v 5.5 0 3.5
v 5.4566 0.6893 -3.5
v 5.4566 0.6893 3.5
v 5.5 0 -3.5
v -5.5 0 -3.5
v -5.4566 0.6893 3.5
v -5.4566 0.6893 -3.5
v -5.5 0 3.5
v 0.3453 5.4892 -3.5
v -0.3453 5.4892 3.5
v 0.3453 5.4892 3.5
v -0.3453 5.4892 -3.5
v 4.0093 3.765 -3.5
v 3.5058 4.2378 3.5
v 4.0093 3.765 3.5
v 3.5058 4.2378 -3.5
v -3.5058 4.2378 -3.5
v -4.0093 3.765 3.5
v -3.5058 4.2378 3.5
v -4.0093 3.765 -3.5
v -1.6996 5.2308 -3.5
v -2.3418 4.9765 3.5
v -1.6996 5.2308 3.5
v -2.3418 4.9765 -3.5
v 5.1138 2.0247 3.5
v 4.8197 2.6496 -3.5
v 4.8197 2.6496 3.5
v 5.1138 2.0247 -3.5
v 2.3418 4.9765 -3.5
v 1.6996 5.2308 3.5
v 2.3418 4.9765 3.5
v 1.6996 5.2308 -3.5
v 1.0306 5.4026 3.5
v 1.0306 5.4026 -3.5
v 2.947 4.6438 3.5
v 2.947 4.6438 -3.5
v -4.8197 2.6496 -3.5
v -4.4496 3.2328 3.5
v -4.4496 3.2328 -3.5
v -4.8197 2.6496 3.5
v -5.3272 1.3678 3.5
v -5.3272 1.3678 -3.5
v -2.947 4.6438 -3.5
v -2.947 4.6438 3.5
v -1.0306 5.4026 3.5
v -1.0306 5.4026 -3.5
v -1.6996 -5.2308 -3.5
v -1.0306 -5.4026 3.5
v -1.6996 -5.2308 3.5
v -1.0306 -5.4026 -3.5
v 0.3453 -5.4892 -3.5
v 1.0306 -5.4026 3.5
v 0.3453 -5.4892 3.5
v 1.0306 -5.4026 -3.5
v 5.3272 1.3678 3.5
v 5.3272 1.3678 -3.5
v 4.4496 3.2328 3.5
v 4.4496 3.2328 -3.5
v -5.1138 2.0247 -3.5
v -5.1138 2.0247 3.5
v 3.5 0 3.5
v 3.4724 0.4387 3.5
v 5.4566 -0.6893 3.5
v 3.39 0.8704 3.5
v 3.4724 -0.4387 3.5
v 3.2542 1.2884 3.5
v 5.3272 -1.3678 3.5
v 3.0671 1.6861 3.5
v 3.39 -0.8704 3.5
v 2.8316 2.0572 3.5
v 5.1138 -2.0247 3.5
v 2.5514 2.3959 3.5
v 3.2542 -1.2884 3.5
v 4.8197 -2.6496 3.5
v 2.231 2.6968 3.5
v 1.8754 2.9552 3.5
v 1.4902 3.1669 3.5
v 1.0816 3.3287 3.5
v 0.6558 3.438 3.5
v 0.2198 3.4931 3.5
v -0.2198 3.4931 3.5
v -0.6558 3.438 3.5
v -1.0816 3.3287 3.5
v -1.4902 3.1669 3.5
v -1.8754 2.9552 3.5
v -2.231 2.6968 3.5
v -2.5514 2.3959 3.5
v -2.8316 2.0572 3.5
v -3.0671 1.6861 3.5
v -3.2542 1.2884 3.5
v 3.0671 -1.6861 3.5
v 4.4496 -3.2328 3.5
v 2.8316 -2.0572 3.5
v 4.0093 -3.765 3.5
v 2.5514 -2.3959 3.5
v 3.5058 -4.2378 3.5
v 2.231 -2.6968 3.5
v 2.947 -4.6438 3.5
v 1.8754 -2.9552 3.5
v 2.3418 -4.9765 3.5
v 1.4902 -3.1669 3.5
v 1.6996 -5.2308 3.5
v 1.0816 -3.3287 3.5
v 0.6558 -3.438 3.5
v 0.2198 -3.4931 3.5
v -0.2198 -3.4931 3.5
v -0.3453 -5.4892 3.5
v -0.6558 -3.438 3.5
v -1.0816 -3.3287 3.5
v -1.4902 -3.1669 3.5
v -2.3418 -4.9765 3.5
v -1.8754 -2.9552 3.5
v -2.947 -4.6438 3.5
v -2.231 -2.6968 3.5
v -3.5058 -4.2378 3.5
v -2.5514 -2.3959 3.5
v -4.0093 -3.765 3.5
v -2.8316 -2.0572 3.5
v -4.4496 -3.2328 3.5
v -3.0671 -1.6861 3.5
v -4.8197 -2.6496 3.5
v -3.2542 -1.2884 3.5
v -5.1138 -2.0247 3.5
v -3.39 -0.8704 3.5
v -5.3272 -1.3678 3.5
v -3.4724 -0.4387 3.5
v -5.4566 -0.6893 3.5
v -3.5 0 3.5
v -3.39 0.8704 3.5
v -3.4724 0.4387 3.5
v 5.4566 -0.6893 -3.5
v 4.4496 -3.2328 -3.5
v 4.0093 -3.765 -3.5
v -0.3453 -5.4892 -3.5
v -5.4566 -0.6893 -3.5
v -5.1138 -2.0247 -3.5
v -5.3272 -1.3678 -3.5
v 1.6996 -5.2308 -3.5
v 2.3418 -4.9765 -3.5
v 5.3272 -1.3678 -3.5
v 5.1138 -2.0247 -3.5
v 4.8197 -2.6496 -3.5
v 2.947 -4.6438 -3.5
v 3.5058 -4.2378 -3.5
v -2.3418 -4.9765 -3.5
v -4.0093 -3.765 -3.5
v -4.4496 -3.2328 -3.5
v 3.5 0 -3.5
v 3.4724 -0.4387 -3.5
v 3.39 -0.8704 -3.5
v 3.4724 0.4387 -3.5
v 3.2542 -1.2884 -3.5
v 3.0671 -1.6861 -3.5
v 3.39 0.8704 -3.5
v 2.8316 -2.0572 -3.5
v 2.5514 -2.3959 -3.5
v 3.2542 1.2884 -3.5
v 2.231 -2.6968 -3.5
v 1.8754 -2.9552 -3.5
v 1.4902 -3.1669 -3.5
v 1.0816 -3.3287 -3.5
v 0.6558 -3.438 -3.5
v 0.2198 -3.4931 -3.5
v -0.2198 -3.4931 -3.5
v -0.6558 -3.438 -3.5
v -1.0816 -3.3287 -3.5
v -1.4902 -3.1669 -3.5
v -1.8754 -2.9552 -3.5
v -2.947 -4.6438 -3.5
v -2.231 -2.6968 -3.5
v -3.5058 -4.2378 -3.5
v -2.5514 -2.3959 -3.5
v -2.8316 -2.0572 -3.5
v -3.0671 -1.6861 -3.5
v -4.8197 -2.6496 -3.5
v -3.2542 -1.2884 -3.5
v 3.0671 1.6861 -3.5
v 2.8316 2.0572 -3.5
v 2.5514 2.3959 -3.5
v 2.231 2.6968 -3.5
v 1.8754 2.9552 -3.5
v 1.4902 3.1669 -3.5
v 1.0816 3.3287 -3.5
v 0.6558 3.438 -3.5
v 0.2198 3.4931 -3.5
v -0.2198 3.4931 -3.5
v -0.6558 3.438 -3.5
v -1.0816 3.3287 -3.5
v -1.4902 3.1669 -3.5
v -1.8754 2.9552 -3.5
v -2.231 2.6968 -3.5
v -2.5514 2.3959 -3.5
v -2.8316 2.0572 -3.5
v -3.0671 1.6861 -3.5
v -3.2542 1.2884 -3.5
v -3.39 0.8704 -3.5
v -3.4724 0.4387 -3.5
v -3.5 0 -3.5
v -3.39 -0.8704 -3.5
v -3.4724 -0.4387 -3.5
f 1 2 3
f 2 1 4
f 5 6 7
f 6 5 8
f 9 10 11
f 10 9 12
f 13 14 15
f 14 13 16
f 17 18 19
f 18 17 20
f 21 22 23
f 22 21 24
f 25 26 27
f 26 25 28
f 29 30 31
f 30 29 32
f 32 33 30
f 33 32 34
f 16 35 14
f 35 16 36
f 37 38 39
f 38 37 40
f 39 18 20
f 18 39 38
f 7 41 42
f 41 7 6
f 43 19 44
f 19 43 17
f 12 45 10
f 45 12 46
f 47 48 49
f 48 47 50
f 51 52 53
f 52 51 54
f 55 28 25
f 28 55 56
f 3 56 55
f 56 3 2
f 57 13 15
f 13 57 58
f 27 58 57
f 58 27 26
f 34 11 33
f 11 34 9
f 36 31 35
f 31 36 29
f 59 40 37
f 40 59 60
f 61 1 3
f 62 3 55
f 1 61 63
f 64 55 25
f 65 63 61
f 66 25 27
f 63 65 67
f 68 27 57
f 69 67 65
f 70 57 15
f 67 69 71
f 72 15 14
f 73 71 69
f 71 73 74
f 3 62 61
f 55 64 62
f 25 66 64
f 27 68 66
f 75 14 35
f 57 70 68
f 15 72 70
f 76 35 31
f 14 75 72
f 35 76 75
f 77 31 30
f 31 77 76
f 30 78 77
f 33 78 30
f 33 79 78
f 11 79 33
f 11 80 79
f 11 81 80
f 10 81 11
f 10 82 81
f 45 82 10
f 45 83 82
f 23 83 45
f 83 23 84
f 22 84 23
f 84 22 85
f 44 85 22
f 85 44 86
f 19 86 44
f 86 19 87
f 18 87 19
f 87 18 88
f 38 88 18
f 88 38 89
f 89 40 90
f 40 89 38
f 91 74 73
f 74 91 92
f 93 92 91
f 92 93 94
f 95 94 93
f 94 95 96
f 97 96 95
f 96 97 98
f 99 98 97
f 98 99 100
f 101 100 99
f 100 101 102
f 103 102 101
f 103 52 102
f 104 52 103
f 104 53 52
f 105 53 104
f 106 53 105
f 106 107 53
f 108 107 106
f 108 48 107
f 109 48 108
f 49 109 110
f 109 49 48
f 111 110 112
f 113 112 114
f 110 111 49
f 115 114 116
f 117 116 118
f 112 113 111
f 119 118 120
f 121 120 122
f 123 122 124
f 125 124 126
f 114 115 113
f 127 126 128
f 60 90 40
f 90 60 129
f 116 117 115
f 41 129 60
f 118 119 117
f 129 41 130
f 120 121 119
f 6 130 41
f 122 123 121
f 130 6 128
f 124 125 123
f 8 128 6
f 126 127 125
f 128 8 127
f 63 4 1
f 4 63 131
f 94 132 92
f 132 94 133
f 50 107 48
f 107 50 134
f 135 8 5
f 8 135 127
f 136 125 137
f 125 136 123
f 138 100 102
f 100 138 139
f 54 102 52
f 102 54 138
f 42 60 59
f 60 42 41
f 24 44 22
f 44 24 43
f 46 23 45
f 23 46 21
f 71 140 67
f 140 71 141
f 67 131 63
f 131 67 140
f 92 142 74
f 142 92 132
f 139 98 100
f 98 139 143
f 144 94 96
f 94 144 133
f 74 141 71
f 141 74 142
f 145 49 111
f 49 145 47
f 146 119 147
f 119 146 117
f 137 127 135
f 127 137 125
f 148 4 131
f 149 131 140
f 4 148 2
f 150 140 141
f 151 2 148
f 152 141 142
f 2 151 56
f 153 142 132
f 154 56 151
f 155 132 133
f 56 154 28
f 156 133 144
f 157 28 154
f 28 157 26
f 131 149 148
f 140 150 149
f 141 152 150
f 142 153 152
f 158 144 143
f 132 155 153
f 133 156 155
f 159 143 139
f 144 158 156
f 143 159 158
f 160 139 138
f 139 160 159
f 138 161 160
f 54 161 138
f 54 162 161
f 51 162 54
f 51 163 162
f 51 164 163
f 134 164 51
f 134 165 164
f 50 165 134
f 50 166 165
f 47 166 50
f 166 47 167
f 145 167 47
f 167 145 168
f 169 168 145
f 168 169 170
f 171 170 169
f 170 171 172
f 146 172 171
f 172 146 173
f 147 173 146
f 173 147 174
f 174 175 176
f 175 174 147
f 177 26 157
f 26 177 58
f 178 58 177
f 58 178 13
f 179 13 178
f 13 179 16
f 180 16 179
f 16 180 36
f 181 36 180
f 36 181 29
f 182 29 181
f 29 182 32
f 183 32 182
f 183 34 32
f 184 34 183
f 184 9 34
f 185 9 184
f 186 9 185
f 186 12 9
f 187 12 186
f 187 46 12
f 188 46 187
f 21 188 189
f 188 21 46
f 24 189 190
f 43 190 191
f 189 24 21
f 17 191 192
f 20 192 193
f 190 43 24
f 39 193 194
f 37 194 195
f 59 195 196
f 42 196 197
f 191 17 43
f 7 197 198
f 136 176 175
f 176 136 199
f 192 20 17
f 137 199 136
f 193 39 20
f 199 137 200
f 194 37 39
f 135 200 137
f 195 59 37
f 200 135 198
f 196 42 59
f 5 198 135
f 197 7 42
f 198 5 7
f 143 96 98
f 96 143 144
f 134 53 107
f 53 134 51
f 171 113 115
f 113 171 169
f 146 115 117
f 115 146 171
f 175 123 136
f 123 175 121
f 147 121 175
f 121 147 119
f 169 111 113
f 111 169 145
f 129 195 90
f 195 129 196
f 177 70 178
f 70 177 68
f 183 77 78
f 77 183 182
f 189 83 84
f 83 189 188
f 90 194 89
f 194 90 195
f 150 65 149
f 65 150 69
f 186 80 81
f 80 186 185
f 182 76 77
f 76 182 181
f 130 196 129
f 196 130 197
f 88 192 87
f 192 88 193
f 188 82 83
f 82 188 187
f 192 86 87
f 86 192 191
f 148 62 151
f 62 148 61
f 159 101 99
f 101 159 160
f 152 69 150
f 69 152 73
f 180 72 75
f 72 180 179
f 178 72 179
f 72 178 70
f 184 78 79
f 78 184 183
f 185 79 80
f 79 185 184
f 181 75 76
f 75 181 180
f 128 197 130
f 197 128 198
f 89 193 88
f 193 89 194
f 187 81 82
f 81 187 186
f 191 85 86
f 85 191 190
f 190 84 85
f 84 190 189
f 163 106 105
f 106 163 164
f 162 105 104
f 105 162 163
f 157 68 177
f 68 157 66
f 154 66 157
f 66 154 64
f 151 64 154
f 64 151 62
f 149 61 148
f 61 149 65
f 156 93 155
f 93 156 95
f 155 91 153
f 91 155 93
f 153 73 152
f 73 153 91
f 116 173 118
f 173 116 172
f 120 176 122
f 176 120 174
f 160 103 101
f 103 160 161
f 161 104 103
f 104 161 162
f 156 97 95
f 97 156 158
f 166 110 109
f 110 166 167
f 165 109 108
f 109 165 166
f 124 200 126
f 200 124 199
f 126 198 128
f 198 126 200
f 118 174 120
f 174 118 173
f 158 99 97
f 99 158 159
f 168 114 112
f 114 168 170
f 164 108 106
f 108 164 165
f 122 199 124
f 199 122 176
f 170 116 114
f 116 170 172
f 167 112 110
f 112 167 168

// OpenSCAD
$fn = 50;


difference() {
	union() {
		translate(v = [0, 0, -3.5000000000]) {
			cylinder(h = 7, r = 5.5000000000);
		}
	}
	union() {
		translate(v = [0, 0, -100.0000000000]) {
			cylinder(h = 200, r = 3.5000000000);
		}
	}
}
